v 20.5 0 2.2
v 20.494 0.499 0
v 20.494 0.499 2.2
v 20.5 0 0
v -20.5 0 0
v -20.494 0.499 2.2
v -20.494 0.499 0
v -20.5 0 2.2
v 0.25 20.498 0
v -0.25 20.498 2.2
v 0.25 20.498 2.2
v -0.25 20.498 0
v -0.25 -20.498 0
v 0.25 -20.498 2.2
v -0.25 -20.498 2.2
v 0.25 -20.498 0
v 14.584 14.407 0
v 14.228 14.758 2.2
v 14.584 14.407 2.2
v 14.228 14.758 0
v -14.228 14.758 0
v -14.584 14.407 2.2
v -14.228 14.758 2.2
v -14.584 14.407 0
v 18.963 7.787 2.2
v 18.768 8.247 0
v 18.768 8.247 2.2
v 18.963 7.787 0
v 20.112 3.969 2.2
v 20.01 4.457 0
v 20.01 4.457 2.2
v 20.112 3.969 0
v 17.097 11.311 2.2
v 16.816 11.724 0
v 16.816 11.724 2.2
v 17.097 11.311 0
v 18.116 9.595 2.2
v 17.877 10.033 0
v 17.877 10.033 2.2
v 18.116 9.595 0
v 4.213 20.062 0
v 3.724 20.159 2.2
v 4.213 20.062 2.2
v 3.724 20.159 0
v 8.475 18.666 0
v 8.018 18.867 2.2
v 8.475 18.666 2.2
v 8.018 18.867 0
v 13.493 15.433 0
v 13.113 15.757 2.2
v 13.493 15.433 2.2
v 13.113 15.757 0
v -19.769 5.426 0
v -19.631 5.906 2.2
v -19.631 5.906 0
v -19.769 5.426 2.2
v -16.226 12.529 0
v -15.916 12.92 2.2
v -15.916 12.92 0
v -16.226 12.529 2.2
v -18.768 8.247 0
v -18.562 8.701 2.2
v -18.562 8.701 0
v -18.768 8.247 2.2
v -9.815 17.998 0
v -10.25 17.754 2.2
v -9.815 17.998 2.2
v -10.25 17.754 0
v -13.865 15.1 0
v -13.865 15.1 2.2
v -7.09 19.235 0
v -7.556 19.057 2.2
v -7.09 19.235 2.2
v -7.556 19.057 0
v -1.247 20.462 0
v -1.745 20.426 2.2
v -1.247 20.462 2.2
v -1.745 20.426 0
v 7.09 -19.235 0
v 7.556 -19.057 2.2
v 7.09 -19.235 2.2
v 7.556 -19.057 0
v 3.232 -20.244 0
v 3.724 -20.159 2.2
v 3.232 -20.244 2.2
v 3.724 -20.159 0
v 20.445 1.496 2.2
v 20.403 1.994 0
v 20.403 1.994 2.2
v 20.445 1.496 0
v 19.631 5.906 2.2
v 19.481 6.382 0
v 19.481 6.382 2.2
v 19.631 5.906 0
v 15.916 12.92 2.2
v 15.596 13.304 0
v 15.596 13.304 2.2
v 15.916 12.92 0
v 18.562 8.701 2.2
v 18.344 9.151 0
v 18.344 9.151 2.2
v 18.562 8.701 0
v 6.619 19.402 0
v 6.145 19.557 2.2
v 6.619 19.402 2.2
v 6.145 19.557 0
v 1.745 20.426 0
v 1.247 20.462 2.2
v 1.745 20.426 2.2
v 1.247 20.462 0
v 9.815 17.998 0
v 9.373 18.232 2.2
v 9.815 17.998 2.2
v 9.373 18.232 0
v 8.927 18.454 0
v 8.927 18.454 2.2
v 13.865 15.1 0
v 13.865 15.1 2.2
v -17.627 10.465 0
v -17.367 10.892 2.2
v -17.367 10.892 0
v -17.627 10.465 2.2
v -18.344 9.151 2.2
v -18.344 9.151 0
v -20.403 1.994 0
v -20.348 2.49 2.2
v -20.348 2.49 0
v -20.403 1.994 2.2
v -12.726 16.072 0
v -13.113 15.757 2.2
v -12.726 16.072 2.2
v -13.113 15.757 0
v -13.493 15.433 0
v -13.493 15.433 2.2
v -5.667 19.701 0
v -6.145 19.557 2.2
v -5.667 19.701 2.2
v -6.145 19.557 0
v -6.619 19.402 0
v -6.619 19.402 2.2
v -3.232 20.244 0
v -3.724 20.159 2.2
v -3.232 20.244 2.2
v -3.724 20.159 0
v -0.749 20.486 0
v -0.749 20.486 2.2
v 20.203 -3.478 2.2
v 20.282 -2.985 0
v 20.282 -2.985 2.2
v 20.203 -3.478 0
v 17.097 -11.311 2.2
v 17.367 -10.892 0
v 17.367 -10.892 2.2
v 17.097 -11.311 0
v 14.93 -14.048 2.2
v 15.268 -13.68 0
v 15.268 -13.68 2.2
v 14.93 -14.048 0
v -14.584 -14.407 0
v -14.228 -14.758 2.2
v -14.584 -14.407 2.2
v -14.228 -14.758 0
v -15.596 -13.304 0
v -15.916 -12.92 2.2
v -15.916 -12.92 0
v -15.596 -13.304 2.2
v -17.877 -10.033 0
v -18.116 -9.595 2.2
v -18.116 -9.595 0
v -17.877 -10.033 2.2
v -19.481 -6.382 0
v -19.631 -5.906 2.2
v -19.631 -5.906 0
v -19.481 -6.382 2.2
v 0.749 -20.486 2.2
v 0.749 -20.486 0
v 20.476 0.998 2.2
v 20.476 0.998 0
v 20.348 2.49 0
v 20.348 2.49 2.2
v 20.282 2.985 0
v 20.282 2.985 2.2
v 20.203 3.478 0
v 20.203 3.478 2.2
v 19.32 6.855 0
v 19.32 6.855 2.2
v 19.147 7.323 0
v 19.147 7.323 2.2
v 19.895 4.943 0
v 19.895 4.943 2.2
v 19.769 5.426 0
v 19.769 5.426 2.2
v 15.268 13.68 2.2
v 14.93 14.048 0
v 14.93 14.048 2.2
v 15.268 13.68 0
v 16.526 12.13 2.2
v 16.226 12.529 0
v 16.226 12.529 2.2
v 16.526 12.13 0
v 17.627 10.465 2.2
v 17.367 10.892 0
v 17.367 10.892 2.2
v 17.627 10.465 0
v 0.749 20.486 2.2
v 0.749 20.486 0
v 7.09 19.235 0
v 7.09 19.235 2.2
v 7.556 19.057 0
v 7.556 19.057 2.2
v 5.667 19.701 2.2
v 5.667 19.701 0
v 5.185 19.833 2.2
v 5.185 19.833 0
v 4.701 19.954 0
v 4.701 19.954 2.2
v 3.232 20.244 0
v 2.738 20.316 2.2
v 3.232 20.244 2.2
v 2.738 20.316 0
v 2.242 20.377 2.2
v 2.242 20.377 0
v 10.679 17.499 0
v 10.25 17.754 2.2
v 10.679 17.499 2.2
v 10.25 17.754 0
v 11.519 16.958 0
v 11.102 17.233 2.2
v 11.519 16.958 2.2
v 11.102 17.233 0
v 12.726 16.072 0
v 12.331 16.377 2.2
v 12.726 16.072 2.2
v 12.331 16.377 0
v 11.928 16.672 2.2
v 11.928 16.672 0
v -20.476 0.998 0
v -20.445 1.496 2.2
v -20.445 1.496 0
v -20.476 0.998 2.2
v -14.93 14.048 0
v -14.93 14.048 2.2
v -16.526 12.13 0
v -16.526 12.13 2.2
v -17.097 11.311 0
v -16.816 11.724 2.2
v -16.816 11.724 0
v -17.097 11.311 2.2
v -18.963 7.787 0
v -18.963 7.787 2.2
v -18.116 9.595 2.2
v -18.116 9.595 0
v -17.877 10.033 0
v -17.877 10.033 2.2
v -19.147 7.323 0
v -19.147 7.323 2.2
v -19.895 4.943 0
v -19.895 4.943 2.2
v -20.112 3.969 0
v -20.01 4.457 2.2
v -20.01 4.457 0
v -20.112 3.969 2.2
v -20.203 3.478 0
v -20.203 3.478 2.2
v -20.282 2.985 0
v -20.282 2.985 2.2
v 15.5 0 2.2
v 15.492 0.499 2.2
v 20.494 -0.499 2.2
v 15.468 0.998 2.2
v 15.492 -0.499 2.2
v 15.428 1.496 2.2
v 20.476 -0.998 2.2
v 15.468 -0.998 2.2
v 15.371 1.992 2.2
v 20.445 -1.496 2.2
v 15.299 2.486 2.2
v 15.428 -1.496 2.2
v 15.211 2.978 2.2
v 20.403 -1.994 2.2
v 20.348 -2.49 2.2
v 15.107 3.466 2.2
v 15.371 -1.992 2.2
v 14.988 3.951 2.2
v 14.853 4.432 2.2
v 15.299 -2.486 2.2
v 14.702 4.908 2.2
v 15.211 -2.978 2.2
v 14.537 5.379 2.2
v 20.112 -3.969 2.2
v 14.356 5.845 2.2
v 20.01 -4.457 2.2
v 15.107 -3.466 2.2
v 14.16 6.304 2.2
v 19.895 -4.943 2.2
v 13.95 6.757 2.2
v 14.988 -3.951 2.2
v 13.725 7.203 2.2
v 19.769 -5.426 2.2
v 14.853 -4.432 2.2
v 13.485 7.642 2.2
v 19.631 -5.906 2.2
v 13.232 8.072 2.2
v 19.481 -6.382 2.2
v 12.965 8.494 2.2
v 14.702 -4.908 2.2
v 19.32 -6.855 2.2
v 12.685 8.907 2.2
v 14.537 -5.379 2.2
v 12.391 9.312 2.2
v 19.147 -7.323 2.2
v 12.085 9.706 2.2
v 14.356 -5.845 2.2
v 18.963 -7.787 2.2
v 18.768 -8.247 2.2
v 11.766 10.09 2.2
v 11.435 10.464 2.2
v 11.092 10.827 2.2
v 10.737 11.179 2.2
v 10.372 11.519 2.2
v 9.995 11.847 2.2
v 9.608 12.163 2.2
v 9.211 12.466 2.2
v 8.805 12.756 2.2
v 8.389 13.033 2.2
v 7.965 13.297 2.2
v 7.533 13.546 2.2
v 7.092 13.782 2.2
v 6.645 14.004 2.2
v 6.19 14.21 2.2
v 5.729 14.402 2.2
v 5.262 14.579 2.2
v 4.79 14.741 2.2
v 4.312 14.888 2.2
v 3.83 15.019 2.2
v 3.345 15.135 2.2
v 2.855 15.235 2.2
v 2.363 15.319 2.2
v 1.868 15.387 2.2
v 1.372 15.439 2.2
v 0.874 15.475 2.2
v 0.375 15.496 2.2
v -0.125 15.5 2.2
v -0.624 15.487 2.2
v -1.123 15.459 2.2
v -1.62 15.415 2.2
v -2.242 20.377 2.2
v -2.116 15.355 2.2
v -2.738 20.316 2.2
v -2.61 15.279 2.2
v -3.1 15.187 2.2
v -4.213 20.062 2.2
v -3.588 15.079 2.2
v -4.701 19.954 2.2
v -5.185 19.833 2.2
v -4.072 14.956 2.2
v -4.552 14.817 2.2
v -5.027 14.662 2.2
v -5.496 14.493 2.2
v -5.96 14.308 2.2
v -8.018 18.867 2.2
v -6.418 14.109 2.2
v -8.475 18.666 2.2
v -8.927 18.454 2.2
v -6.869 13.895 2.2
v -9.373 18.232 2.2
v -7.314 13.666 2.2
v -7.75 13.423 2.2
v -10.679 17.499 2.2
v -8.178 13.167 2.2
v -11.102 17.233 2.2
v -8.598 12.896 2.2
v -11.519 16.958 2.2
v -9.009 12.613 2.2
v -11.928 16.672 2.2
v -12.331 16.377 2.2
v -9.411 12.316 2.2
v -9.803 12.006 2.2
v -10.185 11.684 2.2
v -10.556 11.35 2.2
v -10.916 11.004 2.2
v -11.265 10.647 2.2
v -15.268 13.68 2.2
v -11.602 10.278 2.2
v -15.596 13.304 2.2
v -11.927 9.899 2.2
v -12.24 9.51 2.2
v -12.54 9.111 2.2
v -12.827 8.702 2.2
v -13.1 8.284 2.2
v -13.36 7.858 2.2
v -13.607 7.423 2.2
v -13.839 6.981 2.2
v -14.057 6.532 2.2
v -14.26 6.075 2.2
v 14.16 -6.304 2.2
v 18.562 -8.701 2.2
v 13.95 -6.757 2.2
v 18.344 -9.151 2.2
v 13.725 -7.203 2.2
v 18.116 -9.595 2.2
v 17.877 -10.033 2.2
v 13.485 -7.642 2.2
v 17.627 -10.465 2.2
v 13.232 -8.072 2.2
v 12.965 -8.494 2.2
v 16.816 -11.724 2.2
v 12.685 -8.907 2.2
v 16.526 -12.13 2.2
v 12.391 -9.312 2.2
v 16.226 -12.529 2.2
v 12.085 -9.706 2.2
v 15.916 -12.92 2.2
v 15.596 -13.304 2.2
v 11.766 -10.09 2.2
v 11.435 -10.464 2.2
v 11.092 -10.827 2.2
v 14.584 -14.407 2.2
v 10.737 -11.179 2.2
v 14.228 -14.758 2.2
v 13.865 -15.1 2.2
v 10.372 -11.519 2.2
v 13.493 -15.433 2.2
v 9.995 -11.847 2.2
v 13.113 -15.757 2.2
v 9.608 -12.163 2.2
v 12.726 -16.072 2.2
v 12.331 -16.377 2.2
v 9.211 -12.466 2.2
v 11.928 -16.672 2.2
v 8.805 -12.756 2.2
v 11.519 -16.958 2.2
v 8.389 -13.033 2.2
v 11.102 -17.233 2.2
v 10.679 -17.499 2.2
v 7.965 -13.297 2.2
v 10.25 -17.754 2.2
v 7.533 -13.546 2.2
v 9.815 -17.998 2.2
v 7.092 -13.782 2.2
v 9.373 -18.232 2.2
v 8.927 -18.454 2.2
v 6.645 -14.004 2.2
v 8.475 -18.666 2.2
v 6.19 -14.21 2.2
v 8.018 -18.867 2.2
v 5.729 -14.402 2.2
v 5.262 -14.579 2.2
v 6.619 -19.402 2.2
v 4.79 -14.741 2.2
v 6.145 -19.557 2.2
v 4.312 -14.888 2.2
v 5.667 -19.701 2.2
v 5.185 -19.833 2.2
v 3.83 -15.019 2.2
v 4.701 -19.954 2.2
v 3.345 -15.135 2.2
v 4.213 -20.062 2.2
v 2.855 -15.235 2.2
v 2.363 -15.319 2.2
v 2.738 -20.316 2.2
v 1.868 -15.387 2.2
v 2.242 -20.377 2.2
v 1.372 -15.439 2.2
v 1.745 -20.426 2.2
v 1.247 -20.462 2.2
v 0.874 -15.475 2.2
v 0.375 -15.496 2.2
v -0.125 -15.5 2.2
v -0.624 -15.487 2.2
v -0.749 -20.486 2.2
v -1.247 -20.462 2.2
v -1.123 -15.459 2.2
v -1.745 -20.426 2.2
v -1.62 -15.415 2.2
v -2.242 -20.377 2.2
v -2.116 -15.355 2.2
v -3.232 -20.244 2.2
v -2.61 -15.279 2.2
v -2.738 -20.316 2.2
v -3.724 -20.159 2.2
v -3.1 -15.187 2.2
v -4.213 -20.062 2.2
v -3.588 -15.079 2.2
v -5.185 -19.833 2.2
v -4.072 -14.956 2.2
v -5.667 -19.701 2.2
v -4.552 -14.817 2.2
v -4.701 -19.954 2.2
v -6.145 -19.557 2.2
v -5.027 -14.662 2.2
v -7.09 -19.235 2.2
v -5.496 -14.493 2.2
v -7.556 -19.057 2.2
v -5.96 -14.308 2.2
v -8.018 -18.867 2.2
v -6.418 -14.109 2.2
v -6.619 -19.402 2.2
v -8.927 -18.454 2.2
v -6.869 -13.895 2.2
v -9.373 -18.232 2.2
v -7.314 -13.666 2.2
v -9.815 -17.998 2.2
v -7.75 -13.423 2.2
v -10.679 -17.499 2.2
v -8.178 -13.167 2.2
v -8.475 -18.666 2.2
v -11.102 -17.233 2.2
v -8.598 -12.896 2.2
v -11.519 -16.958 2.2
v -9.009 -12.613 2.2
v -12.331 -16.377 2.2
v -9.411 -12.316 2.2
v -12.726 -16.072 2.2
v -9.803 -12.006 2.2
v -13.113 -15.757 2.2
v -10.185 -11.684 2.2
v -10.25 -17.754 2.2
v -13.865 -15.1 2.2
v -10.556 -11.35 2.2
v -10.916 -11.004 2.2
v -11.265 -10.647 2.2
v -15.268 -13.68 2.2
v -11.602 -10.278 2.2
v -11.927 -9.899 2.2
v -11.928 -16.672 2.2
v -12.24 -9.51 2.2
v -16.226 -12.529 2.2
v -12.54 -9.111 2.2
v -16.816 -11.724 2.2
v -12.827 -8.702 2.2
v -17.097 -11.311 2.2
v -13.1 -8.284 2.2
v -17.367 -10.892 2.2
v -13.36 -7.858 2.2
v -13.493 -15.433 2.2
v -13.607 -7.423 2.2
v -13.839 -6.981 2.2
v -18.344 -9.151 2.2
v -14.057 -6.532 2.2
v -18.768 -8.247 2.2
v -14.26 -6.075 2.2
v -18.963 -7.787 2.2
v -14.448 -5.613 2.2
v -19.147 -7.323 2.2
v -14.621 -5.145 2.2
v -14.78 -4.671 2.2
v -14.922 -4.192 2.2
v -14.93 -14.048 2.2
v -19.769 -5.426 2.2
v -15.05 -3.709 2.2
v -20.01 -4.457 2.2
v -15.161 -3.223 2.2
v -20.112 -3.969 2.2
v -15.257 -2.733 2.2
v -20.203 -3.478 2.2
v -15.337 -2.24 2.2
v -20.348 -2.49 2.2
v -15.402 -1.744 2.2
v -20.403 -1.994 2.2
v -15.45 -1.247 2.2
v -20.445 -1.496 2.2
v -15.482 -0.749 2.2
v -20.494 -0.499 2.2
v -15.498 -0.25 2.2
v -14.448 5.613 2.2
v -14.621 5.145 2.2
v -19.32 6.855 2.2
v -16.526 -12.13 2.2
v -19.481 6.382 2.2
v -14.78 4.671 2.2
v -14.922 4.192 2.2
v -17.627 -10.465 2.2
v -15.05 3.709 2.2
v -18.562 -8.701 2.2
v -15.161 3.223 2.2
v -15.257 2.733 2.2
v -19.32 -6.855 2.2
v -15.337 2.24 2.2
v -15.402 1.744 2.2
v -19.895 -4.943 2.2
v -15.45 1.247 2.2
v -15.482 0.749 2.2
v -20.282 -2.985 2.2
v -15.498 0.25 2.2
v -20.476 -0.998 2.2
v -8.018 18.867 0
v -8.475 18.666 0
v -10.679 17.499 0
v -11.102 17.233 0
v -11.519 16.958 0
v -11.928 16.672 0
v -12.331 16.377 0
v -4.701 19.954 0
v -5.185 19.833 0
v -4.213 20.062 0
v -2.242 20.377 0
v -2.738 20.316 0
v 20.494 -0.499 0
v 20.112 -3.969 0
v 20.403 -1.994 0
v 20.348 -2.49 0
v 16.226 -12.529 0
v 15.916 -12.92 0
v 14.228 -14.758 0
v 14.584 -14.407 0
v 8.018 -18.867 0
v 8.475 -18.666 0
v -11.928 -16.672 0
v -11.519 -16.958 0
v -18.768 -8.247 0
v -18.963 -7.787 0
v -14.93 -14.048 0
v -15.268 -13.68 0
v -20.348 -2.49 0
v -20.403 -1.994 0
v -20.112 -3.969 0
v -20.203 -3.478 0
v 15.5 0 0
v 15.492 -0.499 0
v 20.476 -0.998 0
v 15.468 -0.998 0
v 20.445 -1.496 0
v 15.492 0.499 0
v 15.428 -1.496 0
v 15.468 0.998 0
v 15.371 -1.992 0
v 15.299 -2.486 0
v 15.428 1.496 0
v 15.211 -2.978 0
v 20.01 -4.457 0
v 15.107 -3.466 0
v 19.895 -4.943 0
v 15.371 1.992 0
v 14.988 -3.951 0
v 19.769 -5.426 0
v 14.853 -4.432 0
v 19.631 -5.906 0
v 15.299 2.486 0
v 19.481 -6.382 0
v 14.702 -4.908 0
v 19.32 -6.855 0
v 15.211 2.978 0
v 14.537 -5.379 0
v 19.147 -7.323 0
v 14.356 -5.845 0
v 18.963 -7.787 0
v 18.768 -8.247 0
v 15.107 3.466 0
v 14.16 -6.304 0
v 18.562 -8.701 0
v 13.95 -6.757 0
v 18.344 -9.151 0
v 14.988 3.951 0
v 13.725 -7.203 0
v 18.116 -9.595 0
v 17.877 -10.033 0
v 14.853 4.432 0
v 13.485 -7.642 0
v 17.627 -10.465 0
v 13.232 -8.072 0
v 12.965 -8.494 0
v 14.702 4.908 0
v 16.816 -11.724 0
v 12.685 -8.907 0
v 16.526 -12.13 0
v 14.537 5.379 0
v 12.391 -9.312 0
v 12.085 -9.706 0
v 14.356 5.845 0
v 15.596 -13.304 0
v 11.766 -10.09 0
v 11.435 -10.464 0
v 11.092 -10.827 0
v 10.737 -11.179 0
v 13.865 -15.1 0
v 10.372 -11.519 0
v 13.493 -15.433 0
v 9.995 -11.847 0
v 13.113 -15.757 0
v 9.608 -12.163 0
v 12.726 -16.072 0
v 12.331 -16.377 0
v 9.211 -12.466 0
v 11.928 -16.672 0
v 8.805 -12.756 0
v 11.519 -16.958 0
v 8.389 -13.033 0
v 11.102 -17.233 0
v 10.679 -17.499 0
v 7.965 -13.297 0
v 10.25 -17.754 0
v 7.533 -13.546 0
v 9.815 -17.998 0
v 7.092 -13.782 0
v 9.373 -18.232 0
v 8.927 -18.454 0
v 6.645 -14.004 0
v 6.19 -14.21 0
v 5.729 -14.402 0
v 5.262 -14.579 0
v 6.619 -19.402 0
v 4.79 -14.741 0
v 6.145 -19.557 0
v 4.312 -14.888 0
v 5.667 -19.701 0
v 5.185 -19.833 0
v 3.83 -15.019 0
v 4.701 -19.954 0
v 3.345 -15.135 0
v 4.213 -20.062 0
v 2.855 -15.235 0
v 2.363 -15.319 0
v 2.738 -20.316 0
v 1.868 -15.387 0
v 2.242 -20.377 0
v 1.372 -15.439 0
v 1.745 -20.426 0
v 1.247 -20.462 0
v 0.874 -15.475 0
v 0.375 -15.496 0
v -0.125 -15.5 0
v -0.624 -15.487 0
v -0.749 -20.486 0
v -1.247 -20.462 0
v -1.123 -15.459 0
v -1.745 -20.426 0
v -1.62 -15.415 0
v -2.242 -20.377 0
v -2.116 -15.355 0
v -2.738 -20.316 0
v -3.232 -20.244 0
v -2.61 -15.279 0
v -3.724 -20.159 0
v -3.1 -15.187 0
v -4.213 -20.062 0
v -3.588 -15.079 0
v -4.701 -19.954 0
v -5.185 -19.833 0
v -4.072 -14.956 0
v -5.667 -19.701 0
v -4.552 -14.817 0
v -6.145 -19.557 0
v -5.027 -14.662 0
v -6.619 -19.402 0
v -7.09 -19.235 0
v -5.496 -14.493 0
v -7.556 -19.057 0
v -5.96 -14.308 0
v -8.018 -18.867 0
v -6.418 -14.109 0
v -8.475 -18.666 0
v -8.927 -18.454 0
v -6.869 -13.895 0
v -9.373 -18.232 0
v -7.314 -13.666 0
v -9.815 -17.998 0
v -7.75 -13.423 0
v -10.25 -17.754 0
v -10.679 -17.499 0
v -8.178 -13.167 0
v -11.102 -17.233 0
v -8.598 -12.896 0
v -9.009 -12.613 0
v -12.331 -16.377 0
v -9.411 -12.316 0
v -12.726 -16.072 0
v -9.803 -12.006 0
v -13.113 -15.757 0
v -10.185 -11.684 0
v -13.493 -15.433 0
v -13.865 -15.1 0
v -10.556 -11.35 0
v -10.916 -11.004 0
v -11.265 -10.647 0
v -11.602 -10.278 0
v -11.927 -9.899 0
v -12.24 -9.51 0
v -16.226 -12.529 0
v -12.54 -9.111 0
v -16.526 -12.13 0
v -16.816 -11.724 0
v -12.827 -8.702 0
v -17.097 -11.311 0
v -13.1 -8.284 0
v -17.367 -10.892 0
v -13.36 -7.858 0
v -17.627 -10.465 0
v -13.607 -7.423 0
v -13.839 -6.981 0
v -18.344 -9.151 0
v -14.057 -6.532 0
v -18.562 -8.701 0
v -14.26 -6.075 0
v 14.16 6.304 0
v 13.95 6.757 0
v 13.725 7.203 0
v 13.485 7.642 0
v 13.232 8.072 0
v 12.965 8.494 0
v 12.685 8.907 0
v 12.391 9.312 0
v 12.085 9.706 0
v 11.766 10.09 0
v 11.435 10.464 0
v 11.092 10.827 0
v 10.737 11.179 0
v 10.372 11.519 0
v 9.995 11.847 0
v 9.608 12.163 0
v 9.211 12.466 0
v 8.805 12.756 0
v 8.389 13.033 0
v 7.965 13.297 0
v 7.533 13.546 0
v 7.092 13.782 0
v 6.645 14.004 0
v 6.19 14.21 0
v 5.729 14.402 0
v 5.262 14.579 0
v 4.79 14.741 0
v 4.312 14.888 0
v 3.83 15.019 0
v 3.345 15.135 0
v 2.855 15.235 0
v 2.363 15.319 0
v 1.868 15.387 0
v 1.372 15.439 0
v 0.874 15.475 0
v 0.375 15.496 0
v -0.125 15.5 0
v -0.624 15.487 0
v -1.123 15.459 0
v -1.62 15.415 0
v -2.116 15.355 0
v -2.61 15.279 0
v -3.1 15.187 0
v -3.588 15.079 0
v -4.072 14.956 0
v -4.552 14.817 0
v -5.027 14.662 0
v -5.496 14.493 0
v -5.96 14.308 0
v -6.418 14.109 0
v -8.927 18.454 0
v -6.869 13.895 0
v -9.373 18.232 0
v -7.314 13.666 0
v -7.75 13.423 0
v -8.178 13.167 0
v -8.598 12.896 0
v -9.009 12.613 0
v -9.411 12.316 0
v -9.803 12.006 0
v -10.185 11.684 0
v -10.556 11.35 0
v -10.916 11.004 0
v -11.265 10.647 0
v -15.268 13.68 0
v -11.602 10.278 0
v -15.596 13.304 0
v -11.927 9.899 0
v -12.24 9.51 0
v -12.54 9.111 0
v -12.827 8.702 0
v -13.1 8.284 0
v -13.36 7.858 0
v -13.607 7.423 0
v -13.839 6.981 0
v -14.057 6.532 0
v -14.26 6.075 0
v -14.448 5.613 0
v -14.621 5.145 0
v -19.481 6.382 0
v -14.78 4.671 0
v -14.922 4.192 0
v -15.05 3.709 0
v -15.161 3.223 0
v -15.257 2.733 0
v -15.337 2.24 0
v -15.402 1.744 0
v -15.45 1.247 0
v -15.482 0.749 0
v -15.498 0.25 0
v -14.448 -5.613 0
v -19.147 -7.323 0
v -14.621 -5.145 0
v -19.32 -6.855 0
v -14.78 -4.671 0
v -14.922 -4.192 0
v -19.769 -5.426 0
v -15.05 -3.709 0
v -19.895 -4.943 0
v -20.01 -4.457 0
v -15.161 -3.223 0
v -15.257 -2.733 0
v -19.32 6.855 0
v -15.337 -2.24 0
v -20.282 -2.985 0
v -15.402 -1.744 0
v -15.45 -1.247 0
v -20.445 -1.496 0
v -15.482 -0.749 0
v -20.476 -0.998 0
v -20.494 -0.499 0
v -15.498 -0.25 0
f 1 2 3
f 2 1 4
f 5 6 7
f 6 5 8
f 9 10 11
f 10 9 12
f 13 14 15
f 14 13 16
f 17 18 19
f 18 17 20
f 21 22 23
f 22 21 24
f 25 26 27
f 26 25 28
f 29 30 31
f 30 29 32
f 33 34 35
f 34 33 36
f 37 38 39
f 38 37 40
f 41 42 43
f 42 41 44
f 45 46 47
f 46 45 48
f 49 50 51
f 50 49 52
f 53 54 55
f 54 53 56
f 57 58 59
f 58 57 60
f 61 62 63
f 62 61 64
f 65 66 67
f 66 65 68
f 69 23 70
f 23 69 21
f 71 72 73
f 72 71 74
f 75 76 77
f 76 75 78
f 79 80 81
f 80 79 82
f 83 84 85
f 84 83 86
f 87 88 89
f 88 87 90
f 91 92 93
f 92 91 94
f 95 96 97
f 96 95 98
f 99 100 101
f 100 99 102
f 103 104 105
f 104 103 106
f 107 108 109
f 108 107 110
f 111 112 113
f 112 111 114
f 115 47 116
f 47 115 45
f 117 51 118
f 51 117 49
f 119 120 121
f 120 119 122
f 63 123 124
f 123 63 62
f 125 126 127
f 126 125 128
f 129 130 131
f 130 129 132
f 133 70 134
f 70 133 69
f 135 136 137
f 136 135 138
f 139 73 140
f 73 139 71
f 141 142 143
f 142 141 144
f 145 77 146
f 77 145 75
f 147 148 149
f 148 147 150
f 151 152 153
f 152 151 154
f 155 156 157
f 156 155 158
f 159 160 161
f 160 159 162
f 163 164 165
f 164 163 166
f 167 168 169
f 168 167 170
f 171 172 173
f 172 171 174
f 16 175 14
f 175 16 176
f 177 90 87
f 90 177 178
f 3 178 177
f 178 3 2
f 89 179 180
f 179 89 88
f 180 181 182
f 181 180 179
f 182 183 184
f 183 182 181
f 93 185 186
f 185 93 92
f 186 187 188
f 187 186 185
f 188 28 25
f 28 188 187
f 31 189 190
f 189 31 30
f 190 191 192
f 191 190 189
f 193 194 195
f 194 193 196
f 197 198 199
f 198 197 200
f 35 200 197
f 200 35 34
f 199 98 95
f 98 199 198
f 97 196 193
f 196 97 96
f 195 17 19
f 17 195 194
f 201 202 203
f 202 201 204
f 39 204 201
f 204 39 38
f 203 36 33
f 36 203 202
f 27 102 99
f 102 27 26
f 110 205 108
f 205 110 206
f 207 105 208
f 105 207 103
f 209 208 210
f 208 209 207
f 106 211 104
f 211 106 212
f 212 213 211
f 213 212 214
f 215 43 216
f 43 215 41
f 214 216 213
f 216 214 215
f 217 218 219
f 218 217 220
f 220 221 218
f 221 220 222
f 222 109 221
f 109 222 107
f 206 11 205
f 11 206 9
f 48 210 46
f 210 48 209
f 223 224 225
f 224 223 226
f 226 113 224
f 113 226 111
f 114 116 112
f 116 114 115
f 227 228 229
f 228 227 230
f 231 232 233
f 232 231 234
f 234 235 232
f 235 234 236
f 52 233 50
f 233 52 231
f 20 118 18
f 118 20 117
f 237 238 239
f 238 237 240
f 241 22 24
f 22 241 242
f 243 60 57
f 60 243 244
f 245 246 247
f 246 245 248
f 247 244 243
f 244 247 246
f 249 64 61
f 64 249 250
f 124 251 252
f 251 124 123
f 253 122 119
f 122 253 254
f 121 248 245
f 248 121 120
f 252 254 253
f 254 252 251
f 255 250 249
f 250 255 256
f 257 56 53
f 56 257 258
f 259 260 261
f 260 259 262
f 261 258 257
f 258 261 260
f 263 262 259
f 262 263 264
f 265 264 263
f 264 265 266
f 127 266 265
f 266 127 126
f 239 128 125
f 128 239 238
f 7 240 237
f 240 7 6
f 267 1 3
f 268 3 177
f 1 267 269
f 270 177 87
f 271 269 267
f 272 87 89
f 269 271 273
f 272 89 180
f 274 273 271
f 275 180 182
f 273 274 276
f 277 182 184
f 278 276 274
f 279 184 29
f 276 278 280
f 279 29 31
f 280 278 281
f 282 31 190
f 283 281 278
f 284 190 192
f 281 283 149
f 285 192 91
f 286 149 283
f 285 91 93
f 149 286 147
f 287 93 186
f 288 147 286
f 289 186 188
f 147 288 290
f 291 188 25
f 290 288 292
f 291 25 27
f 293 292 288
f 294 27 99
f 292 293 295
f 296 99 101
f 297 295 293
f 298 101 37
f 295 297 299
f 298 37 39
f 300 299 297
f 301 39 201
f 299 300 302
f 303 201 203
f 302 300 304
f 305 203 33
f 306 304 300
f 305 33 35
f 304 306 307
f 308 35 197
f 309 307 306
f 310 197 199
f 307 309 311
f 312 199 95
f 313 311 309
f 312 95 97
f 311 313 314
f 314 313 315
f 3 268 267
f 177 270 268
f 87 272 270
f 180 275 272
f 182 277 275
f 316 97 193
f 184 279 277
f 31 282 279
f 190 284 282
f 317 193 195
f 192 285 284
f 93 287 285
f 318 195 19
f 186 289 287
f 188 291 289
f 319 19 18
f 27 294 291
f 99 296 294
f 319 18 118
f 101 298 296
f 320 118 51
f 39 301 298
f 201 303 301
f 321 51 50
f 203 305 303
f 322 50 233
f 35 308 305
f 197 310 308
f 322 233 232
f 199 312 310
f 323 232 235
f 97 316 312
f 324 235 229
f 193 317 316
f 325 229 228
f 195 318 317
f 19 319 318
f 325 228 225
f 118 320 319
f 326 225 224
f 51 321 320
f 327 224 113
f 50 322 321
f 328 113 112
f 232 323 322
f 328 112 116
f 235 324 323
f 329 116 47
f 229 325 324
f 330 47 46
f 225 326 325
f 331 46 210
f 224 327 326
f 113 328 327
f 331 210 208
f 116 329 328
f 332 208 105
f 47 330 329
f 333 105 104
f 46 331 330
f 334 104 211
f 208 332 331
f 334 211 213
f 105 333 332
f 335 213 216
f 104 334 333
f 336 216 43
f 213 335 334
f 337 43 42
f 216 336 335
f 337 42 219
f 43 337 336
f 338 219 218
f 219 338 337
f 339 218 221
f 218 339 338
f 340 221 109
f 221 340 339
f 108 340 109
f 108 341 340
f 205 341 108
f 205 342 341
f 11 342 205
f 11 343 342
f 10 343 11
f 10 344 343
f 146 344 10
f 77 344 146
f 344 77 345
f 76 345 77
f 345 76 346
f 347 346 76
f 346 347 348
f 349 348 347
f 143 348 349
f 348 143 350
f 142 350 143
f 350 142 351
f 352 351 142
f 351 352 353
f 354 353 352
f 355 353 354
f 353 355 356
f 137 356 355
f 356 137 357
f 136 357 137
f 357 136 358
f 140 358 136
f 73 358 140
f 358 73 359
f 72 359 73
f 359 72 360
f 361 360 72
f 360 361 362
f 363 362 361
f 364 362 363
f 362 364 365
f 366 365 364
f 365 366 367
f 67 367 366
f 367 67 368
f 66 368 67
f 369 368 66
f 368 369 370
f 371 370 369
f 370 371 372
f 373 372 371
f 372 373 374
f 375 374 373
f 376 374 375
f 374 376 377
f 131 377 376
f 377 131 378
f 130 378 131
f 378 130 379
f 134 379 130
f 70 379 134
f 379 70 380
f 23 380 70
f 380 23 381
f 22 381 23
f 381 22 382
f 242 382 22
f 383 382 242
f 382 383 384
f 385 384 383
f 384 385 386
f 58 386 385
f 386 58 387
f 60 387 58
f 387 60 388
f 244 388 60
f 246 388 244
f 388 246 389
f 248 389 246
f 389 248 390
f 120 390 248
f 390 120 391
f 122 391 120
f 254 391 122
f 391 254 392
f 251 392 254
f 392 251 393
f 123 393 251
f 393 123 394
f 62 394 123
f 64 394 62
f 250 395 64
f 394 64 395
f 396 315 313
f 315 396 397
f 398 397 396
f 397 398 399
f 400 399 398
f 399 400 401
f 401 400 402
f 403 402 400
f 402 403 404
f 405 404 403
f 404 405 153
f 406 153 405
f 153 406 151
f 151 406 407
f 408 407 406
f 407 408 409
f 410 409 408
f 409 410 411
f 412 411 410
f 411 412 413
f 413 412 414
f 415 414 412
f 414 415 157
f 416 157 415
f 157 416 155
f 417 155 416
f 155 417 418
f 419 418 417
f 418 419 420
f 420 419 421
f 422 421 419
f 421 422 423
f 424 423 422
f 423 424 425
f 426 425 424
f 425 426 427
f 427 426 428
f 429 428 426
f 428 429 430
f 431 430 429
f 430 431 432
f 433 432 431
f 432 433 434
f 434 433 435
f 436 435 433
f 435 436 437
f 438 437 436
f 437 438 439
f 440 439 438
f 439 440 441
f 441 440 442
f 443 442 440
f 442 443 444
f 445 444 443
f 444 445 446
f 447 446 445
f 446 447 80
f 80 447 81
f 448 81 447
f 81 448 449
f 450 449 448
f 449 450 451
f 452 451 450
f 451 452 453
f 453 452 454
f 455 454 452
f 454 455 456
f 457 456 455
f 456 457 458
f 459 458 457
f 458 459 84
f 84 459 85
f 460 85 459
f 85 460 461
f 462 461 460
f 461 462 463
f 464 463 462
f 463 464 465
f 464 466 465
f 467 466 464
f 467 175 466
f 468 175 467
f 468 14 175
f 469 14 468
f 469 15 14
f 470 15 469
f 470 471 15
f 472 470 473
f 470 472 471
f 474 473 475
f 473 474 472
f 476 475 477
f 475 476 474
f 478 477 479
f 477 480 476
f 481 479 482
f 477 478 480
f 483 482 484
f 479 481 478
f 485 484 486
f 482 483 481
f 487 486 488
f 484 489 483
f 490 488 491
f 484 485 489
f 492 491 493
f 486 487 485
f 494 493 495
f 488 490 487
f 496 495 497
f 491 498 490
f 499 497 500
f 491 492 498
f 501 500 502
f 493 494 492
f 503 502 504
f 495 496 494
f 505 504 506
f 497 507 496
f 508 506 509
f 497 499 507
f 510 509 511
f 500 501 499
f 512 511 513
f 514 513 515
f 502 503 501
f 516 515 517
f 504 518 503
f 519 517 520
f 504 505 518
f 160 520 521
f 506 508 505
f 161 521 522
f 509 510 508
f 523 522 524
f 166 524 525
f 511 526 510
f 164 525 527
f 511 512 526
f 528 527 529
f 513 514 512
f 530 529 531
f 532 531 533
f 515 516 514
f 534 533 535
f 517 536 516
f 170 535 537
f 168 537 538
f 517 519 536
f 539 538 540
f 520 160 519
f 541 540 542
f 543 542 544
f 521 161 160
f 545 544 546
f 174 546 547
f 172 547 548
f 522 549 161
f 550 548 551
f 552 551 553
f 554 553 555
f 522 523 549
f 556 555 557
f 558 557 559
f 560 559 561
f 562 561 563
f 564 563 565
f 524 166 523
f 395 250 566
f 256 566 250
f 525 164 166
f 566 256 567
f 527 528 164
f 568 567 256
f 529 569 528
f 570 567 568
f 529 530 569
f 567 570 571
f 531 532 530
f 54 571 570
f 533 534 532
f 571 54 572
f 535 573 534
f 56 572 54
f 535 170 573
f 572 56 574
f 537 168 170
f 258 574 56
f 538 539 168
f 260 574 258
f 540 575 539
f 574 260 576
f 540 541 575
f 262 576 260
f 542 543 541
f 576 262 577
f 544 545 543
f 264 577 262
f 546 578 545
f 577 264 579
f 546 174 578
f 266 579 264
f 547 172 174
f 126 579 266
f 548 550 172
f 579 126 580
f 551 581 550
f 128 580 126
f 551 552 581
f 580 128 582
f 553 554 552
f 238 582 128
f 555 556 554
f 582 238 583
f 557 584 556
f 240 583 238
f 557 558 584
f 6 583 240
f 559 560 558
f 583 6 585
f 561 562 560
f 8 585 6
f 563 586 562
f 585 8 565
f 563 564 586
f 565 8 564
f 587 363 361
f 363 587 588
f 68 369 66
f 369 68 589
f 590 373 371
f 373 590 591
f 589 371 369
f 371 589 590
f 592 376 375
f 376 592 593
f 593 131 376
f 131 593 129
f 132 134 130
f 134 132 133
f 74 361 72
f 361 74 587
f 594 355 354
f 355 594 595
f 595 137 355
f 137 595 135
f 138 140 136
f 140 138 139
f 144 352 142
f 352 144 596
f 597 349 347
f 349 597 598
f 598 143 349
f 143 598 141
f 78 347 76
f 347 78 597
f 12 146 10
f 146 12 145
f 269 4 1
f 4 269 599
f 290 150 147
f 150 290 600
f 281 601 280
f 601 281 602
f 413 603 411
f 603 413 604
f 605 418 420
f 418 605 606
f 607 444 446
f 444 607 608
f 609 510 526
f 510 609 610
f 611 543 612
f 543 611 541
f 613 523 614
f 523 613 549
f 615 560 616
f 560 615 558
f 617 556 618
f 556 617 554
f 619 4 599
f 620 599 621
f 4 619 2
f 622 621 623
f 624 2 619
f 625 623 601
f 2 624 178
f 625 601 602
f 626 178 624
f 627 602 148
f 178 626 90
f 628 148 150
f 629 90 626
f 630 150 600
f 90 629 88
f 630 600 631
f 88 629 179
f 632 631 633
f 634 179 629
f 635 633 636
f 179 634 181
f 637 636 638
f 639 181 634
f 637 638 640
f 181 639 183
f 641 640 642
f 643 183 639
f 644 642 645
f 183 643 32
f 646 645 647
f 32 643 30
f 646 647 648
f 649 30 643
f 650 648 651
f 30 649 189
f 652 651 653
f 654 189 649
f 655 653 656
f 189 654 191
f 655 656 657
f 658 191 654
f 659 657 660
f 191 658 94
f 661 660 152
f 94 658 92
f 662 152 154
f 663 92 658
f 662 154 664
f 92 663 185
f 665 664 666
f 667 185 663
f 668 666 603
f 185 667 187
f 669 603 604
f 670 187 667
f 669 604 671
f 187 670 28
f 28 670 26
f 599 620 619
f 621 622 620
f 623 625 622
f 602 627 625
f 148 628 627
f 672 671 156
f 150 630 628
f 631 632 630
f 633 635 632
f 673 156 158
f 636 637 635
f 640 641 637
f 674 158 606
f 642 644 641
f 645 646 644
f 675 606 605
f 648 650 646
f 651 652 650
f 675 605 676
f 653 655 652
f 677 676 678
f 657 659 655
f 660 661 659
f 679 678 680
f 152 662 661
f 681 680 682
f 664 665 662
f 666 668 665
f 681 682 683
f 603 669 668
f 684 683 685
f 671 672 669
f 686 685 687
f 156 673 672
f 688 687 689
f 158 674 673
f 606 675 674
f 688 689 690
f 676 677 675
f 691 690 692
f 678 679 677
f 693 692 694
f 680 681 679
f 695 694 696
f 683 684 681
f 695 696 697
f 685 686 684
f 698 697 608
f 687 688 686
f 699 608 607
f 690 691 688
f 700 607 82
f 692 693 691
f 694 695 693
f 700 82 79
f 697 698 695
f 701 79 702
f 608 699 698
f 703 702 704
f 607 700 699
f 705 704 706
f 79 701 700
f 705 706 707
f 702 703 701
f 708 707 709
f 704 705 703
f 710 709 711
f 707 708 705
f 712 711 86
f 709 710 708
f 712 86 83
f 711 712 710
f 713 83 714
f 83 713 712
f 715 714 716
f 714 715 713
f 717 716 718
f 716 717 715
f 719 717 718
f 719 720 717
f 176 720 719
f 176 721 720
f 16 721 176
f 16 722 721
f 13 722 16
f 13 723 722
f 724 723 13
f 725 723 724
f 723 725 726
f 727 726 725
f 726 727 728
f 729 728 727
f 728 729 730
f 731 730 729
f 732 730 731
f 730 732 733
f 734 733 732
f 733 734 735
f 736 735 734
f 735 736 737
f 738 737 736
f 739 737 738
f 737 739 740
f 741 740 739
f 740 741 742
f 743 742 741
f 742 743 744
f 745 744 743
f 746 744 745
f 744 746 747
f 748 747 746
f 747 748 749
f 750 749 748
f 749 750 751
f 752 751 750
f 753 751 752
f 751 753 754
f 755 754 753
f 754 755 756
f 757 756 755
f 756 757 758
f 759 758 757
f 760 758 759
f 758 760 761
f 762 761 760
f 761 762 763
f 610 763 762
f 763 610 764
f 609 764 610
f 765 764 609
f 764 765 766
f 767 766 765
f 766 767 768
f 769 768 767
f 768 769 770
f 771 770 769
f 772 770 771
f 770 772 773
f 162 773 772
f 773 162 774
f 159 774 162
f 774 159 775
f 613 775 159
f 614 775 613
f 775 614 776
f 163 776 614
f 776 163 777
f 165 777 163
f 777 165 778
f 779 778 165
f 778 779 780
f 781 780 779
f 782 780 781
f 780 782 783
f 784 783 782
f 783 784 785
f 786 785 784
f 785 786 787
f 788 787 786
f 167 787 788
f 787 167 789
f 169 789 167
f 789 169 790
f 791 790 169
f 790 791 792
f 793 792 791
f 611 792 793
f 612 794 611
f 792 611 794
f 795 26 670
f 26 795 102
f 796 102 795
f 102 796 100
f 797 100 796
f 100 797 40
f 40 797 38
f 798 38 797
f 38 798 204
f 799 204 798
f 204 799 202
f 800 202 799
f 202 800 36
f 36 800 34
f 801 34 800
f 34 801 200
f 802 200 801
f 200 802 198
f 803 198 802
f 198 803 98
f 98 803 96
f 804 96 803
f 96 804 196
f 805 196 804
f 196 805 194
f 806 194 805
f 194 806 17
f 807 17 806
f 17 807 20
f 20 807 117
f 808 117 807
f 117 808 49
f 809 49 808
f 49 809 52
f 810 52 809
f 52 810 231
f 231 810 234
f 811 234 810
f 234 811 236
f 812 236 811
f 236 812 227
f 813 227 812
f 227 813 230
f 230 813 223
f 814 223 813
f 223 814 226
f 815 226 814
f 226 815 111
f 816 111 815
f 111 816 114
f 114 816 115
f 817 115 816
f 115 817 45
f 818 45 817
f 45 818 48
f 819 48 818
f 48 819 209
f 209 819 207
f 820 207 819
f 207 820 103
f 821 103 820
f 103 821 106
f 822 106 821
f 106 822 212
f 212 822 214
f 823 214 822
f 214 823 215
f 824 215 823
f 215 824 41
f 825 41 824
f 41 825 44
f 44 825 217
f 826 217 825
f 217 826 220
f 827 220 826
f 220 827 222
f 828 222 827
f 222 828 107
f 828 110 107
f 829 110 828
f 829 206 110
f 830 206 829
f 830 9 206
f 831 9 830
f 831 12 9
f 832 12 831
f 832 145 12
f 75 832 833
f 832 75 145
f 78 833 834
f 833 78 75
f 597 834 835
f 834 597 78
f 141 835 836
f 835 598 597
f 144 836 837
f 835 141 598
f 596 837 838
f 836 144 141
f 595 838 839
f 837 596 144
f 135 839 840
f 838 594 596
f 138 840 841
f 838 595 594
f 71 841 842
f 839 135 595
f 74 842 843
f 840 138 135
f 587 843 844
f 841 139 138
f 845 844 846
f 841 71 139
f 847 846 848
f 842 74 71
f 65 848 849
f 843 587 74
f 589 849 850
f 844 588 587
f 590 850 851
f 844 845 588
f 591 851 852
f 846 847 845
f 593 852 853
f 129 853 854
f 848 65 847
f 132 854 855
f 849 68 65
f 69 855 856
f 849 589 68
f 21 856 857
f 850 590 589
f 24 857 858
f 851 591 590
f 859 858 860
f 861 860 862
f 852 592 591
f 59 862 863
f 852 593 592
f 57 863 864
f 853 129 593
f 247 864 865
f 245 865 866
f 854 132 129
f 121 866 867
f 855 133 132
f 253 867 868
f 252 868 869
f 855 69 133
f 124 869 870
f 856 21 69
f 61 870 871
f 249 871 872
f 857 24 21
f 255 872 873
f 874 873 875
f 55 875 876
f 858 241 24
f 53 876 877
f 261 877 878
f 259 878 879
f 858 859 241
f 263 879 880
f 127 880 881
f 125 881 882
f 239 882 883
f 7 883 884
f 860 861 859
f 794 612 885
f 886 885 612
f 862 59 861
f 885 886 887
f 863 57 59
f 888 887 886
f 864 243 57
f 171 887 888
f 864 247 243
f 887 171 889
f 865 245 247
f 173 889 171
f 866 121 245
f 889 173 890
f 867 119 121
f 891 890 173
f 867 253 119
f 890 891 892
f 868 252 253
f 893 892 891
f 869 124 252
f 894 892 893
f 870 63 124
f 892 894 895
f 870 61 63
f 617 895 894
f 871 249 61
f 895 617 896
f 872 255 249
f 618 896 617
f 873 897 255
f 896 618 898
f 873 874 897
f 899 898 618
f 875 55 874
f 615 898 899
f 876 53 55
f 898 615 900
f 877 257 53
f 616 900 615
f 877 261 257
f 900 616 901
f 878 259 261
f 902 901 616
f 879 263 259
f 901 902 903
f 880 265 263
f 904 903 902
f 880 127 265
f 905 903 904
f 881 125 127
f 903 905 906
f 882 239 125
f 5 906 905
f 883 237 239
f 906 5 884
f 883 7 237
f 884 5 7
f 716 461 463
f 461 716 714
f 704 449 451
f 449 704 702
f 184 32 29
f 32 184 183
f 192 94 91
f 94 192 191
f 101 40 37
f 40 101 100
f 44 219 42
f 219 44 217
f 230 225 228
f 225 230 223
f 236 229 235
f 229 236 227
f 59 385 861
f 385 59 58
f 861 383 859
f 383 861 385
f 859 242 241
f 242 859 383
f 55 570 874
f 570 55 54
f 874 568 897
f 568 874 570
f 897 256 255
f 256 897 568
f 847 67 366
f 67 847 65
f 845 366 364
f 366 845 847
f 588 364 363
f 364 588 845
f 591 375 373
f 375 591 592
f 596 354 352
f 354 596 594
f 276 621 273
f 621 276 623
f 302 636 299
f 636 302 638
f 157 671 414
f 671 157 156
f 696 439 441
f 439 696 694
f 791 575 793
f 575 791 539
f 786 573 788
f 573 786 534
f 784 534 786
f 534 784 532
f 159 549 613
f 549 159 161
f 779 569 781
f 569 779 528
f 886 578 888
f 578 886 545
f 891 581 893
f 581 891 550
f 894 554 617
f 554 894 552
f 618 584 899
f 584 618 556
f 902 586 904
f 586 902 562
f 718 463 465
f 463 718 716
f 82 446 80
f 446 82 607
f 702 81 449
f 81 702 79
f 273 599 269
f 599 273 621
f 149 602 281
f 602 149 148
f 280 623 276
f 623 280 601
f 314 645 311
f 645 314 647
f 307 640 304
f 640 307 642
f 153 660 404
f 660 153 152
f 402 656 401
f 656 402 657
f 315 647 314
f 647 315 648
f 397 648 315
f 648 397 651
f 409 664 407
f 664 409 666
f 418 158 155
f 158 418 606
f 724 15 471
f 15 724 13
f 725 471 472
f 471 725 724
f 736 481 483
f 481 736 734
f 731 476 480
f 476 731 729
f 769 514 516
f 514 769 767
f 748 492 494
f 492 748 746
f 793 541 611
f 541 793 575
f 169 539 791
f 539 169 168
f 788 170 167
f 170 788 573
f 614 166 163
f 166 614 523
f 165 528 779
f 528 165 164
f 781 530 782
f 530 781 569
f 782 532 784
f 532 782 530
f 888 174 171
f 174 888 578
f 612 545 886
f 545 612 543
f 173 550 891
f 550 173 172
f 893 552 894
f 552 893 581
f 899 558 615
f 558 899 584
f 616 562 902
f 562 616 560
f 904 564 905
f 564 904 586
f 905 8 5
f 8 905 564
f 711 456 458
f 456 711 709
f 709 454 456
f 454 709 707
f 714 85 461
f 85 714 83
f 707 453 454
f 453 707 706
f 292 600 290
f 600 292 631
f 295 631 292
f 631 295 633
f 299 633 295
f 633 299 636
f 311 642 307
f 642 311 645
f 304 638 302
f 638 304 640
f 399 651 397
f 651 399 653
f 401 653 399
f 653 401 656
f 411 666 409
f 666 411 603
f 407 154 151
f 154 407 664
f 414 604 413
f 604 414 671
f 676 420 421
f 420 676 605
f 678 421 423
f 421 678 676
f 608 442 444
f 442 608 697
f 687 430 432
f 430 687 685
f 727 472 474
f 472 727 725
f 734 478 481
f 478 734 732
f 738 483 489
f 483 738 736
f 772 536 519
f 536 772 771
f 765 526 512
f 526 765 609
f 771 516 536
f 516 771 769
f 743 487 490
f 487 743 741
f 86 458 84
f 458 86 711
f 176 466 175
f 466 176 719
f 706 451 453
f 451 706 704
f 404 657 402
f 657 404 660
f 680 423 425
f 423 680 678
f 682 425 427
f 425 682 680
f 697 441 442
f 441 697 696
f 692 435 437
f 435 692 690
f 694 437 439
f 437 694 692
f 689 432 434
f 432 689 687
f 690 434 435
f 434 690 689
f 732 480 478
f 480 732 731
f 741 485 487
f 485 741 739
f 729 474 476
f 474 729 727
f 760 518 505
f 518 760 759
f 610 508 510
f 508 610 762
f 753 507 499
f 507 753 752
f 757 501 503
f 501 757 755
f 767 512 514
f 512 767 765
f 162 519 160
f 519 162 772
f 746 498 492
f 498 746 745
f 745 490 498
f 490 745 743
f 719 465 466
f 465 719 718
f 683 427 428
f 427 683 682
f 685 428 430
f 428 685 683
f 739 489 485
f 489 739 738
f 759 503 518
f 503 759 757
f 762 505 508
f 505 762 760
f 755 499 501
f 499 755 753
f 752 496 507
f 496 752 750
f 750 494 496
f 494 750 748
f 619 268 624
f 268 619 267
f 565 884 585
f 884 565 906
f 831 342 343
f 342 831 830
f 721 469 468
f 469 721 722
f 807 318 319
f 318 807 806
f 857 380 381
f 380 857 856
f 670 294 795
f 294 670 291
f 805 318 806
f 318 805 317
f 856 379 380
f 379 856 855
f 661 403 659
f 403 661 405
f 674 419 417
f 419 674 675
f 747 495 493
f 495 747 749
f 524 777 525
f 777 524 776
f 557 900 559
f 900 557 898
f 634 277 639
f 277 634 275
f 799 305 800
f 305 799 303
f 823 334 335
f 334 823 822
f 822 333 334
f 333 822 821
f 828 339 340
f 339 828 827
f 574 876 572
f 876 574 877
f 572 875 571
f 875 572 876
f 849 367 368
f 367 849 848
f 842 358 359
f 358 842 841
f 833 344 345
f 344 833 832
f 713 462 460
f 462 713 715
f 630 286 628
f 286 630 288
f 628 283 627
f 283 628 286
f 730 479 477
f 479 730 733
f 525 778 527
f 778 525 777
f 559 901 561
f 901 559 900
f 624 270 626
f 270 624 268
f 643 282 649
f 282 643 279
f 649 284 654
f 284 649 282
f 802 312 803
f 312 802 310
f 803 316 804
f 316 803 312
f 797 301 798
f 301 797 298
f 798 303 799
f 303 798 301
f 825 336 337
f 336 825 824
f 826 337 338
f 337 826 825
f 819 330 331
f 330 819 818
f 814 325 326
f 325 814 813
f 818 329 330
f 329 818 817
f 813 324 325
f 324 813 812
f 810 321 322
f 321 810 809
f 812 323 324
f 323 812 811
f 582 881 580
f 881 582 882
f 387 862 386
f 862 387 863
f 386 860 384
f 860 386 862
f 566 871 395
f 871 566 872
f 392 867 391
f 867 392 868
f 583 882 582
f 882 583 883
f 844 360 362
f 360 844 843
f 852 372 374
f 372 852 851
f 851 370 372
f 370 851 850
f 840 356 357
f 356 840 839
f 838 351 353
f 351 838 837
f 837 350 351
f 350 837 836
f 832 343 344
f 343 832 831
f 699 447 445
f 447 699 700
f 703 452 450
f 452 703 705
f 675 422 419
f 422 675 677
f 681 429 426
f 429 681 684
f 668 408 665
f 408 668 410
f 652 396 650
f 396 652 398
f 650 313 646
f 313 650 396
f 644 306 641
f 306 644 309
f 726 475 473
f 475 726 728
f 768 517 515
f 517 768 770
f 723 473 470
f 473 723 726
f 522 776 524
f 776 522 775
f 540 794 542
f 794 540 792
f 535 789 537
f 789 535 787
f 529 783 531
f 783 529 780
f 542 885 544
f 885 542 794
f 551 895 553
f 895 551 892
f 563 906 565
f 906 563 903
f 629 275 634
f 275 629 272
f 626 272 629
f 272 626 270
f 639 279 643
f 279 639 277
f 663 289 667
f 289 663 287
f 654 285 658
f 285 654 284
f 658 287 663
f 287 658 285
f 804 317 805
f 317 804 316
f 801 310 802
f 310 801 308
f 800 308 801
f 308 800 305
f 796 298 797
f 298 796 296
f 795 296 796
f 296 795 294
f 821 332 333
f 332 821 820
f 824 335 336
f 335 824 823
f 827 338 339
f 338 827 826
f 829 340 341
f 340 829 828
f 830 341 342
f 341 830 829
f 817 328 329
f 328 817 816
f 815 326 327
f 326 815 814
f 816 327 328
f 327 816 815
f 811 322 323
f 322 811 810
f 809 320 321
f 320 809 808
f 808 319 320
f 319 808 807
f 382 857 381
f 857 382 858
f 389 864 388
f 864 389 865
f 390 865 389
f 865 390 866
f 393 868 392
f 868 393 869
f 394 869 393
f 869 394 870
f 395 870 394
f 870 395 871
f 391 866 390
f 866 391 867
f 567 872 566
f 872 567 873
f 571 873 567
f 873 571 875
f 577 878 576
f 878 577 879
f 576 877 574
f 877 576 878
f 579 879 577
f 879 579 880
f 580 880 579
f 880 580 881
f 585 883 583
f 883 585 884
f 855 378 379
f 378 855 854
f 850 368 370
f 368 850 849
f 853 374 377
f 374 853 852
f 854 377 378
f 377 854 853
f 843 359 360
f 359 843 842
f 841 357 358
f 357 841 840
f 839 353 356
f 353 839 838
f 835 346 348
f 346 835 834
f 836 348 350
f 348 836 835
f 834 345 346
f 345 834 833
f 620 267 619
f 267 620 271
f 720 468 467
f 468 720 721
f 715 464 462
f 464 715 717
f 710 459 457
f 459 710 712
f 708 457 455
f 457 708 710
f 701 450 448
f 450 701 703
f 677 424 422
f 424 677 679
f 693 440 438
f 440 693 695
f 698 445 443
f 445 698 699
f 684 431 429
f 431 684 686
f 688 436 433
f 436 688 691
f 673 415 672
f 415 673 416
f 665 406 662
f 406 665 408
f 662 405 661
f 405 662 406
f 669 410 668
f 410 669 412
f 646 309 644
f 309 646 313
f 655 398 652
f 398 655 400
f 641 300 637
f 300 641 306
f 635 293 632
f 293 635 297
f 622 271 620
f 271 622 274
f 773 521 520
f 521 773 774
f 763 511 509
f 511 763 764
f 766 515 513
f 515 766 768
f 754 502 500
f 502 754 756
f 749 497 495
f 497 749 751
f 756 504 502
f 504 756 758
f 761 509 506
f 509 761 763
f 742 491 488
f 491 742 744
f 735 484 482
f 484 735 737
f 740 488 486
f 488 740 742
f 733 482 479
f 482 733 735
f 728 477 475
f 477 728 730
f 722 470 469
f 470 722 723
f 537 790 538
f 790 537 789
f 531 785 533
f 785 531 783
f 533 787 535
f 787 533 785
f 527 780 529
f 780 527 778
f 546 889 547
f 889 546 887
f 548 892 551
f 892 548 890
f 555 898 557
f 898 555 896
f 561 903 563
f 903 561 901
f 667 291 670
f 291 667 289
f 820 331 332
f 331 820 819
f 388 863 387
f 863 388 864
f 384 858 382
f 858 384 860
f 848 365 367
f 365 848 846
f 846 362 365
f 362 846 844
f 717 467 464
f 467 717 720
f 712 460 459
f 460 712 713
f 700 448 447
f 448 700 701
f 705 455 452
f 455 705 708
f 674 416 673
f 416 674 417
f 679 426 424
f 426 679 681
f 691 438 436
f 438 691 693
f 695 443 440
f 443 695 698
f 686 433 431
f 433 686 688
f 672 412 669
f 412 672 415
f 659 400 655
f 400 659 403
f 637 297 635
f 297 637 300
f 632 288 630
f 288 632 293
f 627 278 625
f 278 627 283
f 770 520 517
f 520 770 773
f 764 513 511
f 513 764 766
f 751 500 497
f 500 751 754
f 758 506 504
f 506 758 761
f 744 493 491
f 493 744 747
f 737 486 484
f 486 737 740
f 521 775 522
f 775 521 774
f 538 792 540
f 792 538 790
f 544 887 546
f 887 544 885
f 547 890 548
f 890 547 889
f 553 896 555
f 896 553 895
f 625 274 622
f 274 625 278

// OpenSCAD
$fa=0.5; // default minimum facet angle is now 0.5
$fs=0.5; // default minimum facet size is now 0.5 mm
outer_r=41/2;
inner_r=31/2;
h=2.2;

top_h=50;
wall=10;
   

difference() {
        cylinder(h, outer_r, outer_r);
       translate([0, 0, -1]) cylinder(h*2, inner_r, inner_r);
}
